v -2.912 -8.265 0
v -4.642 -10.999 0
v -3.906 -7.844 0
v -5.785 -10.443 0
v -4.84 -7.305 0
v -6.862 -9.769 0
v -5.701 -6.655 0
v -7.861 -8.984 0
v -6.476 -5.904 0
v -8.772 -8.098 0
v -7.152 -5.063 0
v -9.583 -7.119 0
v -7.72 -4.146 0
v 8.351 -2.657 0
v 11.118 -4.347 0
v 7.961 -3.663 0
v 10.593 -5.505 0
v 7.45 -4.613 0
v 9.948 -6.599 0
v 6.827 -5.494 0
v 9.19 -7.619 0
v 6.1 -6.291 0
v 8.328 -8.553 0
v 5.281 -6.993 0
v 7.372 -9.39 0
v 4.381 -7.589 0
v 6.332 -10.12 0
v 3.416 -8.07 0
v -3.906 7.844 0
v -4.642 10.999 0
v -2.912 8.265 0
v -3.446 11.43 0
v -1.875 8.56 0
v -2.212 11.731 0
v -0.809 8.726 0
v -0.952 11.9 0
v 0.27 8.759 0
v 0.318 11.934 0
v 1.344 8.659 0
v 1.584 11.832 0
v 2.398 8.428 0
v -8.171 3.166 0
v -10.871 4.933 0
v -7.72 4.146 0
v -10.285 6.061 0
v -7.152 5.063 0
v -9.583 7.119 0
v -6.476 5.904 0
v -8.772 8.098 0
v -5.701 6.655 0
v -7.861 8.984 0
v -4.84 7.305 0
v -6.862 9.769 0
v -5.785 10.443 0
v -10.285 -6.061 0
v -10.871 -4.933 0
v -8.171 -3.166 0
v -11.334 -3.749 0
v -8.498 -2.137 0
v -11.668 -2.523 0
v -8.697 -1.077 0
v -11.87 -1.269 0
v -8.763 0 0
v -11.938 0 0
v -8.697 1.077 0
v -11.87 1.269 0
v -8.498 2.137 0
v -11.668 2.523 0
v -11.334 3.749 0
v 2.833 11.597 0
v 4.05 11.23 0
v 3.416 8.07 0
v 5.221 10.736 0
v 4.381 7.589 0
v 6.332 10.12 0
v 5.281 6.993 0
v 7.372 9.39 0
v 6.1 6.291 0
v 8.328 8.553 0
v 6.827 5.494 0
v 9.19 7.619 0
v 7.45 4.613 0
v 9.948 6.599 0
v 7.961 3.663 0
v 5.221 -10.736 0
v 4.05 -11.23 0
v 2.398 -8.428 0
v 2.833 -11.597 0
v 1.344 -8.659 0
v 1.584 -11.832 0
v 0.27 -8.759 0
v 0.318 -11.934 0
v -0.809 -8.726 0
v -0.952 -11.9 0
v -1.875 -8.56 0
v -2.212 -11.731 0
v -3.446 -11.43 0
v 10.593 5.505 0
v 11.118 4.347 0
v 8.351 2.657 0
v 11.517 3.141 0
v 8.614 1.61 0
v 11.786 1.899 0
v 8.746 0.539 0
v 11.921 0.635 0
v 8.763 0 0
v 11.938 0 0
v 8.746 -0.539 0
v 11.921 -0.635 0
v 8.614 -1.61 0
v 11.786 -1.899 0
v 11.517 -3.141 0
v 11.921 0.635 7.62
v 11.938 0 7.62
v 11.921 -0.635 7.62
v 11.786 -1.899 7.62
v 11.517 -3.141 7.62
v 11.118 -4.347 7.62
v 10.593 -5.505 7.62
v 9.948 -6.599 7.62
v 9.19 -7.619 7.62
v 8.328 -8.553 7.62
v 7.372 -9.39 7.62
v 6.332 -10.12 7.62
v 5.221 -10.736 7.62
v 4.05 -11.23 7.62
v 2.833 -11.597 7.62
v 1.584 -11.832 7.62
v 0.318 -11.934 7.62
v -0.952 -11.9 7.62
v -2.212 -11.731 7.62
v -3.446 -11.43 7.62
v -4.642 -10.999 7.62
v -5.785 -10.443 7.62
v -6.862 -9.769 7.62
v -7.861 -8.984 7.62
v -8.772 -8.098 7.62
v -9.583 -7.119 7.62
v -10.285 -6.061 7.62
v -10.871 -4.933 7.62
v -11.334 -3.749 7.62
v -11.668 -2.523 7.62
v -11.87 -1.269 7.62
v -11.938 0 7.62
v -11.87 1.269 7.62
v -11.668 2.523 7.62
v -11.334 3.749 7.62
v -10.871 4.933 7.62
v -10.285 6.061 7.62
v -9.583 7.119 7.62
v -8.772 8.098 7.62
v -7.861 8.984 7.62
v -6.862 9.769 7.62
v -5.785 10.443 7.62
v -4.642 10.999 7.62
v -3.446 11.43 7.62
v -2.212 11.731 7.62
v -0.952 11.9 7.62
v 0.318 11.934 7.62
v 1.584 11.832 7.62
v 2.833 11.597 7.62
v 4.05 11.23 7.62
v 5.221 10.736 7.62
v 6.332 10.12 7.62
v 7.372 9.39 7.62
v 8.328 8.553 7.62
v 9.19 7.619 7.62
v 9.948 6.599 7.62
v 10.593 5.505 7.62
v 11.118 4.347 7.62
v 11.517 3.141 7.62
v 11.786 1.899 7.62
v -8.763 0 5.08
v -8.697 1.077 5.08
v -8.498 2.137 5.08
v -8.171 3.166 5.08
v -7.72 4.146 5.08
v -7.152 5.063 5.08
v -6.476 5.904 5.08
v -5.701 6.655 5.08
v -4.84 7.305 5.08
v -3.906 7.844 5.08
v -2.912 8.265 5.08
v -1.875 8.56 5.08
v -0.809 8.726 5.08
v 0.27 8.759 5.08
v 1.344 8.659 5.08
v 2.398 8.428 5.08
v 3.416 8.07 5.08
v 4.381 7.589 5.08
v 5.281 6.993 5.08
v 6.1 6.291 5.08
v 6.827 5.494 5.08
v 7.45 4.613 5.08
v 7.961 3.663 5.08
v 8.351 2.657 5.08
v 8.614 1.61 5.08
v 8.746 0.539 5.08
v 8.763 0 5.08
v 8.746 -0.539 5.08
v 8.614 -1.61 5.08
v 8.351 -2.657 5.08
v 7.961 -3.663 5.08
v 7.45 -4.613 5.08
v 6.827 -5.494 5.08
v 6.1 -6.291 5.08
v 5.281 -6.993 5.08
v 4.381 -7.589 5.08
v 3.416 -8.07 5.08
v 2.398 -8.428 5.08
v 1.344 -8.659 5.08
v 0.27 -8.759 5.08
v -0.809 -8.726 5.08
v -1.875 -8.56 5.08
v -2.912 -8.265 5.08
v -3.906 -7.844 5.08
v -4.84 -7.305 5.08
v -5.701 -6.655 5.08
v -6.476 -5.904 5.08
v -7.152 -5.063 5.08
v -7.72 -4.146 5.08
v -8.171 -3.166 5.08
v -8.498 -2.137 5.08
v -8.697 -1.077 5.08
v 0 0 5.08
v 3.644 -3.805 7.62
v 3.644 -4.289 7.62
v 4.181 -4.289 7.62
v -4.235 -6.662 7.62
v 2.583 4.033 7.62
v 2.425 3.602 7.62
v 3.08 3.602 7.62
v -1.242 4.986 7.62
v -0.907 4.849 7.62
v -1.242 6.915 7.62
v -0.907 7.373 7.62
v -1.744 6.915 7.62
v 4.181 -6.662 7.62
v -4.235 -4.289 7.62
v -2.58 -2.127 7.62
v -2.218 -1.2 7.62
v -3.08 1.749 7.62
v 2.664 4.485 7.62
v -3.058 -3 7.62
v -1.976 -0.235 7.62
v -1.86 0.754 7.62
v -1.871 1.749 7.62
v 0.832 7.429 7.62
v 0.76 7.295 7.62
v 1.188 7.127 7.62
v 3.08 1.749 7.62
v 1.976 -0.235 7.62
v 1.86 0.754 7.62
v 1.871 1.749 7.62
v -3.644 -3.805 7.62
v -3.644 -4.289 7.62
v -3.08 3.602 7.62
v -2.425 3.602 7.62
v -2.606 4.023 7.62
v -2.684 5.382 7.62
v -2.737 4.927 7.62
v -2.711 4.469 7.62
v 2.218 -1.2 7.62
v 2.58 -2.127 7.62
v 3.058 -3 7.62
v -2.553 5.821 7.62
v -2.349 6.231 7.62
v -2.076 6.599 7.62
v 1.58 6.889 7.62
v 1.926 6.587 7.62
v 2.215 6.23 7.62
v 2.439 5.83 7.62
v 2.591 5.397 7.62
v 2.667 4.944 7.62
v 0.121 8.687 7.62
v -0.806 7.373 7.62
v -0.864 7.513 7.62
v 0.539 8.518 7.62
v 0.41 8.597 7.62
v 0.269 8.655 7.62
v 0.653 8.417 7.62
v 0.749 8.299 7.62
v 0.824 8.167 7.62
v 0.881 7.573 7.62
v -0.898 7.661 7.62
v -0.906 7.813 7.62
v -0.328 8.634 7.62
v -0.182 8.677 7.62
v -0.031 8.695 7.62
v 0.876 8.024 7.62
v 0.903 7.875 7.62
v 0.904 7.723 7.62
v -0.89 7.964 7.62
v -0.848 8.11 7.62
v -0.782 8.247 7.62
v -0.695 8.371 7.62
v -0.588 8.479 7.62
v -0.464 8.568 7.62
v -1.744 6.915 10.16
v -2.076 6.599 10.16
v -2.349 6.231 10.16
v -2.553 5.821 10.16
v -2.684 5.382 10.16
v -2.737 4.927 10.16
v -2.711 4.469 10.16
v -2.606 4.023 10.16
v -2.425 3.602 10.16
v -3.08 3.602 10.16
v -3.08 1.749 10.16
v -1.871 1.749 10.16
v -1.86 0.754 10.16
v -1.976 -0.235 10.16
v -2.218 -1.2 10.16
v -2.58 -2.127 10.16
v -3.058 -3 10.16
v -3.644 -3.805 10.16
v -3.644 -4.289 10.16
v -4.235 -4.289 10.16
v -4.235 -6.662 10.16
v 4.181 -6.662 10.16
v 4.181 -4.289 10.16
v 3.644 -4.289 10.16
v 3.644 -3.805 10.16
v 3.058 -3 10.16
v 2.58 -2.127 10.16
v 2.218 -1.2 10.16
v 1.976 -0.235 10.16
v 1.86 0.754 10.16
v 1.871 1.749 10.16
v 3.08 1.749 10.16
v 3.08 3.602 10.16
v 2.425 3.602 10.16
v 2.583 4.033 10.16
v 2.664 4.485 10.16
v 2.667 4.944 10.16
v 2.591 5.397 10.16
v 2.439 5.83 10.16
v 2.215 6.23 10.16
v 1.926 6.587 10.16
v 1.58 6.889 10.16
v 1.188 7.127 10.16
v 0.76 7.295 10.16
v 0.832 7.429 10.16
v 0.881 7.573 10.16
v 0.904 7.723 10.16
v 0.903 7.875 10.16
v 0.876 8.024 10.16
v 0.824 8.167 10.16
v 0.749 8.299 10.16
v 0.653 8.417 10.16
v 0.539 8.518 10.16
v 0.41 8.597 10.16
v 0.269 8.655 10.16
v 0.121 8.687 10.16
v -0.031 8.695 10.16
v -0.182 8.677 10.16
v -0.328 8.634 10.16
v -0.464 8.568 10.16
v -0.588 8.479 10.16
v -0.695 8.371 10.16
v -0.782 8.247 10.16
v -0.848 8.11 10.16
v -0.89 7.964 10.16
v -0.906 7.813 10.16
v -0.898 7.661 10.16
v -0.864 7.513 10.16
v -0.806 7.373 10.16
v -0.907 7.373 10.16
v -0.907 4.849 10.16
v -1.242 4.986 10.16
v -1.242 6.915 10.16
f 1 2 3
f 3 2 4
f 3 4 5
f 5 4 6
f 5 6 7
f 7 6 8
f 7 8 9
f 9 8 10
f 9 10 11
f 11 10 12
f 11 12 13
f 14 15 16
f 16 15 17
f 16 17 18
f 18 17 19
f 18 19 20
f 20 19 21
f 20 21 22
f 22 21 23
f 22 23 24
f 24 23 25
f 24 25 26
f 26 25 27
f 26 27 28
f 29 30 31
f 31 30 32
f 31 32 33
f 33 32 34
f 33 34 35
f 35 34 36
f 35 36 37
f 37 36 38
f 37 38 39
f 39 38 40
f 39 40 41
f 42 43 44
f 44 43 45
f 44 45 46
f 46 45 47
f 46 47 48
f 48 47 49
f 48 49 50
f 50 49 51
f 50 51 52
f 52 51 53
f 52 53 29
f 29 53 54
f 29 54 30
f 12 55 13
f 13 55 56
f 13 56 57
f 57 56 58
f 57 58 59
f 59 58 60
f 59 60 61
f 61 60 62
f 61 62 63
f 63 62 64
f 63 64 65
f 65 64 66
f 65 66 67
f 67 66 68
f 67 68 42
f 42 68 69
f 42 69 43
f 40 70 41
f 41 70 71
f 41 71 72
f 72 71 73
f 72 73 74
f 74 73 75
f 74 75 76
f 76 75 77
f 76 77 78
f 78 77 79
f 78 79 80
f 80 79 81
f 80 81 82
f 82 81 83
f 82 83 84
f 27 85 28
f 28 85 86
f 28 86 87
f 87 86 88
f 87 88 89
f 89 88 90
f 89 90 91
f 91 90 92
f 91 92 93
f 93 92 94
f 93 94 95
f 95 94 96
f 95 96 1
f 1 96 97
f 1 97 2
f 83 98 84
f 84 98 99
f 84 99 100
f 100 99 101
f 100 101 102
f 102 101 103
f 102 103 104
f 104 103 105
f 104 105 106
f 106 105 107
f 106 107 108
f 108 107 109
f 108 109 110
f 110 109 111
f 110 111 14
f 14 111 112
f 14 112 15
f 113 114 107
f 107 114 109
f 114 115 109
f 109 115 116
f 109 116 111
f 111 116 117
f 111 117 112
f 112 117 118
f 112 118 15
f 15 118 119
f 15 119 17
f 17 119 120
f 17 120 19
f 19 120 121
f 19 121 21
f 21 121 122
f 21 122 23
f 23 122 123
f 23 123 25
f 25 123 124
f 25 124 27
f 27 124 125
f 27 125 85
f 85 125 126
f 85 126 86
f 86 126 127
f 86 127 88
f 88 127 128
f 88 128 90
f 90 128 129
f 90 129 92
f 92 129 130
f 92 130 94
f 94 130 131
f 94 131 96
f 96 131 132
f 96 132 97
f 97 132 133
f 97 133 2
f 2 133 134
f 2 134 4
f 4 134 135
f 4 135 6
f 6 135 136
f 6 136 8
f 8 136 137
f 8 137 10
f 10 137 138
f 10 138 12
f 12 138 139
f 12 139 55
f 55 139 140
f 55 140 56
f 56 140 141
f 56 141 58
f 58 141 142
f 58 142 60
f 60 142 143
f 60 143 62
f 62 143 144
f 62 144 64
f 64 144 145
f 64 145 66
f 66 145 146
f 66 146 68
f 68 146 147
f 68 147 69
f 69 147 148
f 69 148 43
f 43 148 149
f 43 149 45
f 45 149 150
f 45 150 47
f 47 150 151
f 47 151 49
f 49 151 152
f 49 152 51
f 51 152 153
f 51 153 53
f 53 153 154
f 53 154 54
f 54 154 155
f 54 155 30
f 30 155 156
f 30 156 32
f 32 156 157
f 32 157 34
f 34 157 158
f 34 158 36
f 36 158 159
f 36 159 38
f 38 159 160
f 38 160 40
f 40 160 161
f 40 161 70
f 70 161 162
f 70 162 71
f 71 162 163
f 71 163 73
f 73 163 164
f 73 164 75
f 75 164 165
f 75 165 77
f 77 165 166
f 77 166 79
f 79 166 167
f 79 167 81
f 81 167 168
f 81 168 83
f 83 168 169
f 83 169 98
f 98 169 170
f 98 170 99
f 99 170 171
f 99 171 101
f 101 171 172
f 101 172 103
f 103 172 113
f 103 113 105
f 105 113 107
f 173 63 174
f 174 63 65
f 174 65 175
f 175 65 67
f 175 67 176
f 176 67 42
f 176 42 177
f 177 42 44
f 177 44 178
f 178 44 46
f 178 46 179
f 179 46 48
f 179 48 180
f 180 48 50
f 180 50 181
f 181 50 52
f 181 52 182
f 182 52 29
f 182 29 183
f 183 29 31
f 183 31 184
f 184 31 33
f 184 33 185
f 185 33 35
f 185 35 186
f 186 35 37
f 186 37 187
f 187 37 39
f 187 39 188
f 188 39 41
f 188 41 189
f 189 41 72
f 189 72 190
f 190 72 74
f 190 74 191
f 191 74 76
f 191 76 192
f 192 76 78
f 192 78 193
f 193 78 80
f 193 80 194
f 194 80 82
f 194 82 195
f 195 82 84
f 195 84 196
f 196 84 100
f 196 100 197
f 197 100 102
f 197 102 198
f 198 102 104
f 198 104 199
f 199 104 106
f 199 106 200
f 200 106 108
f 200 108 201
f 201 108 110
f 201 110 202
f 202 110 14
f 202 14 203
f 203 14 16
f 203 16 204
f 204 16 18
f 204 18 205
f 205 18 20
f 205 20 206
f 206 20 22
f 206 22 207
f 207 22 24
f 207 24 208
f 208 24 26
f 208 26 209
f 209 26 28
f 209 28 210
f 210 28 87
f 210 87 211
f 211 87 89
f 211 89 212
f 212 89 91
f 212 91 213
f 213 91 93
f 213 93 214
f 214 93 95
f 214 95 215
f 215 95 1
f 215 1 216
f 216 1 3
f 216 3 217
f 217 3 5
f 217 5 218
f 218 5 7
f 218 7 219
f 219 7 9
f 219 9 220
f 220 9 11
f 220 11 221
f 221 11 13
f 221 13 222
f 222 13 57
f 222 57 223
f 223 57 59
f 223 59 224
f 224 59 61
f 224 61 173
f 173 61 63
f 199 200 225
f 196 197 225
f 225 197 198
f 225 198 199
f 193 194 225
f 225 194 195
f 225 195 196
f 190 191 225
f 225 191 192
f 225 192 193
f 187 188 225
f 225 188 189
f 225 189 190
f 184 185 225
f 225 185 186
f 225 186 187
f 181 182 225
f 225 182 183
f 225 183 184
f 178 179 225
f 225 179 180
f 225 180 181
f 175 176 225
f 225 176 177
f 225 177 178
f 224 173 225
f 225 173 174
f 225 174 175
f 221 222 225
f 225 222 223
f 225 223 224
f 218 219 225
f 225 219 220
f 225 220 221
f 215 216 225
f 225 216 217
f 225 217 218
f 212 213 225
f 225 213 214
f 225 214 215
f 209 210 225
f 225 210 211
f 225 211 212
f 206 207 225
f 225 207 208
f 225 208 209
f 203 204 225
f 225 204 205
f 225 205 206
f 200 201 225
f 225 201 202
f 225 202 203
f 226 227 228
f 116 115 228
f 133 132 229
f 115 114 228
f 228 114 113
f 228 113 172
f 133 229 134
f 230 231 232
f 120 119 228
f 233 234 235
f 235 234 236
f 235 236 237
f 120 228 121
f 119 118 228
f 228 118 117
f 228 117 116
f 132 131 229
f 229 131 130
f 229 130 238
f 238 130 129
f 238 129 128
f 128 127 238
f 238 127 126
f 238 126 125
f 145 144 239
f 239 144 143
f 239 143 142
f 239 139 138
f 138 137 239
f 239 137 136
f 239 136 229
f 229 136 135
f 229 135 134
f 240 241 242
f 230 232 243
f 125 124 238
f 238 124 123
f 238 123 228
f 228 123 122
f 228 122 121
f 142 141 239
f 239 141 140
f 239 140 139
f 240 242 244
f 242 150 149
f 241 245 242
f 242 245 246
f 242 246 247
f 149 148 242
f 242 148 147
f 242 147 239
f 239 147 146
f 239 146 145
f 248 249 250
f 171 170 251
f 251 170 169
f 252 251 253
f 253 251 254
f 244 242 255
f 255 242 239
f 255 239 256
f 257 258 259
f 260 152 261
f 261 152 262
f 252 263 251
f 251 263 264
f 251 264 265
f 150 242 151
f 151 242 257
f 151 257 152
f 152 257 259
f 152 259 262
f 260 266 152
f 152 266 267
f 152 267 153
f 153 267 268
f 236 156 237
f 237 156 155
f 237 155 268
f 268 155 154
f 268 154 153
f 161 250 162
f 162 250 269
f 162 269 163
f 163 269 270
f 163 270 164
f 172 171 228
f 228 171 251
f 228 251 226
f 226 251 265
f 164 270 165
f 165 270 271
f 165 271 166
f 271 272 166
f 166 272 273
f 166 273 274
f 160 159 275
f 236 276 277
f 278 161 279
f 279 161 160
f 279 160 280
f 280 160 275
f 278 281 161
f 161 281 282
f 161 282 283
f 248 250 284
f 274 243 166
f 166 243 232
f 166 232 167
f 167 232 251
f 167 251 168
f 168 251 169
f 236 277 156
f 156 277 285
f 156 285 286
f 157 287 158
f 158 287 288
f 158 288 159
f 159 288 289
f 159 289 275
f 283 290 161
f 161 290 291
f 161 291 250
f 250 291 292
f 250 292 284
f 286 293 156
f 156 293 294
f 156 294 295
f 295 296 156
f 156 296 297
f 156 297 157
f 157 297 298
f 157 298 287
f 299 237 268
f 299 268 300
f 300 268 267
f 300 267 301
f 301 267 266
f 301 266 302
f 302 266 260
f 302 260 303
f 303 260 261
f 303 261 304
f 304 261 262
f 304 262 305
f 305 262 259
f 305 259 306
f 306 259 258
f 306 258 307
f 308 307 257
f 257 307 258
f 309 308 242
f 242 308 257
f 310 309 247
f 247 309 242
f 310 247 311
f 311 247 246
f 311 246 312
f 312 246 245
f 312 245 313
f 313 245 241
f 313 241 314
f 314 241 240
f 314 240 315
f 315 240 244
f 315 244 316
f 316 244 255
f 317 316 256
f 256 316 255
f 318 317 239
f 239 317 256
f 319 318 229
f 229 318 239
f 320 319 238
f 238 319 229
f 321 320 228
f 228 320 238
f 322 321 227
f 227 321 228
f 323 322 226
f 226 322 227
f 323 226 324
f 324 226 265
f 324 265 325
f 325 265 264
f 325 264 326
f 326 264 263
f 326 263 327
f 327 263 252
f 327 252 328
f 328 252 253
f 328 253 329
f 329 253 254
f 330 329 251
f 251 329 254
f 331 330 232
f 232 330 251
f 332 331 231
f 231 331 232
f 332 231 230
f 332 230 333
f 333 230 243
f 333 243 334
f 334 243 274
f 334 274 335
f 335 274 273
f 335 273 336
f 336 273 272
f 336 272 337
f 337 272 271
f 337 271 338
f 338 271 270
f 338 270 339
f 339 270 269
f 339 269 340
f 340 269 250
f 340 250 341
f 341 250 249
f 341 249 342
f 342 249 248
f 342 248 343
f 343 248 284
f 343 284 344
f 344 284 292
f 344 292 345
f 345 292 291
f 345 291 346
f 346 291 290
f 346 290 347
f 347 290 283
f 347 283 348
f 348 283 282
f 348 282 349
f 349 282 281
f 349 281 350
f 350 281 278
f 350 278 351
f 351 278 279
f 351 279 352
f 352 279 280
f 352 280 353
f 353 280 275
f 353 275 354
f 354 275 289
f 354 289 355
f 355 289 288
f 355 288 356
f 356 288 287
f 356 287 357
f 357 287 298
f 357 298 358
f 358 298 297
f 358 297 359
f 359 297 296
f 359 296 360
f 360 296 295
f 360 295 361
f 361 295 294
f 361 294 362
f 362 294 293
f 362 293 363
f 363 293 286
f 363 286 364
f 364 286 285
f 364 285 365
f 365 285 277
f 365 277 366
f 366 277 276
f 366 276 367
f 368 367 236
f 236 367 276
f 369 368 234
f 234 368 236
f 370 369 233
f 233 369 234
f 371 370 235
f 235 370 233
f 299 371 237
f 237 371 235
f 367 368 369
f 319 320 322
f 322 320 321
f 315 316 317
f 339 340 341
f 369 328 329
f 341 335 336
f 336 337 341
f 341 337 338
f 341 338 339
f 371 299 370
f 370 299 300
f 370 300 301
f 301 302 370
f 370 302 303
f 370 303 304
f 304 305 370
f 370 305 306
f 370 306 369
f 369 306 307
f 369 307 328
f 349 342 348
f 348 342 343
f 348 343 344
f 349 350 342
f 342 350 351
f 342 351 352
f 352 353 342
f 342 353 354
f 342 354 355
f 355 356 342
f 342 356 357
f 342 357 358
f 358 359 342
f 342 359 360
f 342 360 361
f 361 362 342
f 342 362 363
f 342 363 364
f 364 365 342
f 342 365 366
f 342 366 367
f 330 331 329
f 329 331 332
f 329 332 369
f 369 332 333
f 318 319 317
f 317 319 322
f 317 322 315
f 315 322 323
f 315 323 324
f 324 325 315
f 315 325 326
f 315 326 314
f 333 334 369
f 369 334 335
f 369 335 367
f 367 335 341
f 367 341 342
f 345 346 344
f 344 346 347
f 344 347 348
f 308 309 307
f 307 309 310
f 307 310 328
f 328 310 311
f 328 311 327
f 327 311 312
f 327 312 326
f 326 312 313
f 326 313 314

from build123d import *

# Parameters (mm, degrees)
SKETCH1_R           = 11.938
SKETCH1_R_2         = 8.763
BOSS_EXTRUDE1_DEPTH = 5.08
SKETCH2_R           = 11.938
BOSS_EXTRUDE2_DEPTH = 2.54
BOSS_EXTRUDE4_DEPTH = 2.54


with BuildPart() as part:
    # Sketch1 → Boss-Extrude1 (new body)
    with BuildSketch(Plane.XY):
        Circle(SKETCH1_R)
        Circle(SKETCH1_R_2, mode=Mode.SUBTRACT)
    extrude(amount=BOSS_EXTRUDE1_DEPTH)

    # Sketch2 → Boss-Extrude2 (add)
    with BuildSketch(Plane.XY.offset(5.08)):
        Circle(SKETCH2_R)
    extrude(amount=BOSS_EXTRUDE2_DEPTH)

    # Sketch3 → Boss-Extrude4 (add)
    with BuildSketch(Plane.XY.offset(7.62)):
        with BuildLine():
            Line((-3.643894956, -4.288673329), (-3.643894956, -3.805293576))
            ThreePointArc((-3.643894956, -3.805293576), (-2.21771863, -1.200372389), (-1.871410538, 1.749146896))
            Line((-1.871410538, 1.749146896), (-3.079634877, 1.749146896))
            Line((-3.079634877, 1.749146896), (-3.079634877, 3.601746254))
            Line((-3.079634877, 3.601746254), (-2.425208939, 3.601746254))
            ThreePointArc((-2.425208939, 3.601746254), (-2.683961488, 5.381731454), (-1.744311698, 6.915471479))
            Line((-1.744311698, 6.915471479), (-1.242224022, 6.915471479))
            Line((-1.242224022, 6.915471479), (-1.242224022, 4.985805442))
            Line((-1.242224022, 4.985805442), (-0.906720977, 4.849479664))
            Line((-0.906720977, 4.849479664), (-0.906720977, 7.372630859))
            Line((-0.906720977, 7.372630859), (-0.805595188, 7.372630859))
            ThreePointArc((-0.805595188, 7.372630859), (0.04512934, 8.694352218), (0.760232512, 7.294599731))
            ThreePointArc((0.760232512, 7.294599731), (2.43882488, 5.829651294), (2.425208939, 3.601746254))
            Line((2.425208939, 3.601746254), (3.079634877, 3.601746254))
            Line((3.079634877, 3.601746254), (3.079634877, 1.749146896))
            Line((3.079634877, 1.749146896), (1.871410538, 1.749146896))
            ThreePointArc((1.871410538, 1.749146896), (2.21771863, -1.200372389), (3.643894956, -3.805293576))
            Line((3.643894956, -3.805293576), (3.643894956, -4.288673329))
            Line((3.643894956, -4.288673329), (4.180733459, -4.288673329))
            Line((4.180733459, -4.288673329), (4.180733459, -6.661736262))
            Line((4.180733459, -6.661736262), (-4.235077354, -6.661736262))
            Line((-4.235077354, -6.661736262), (-4.235077354, -4.288673329))
            Line((-4.235077354, -4.288673329), (-3.643894956, -4.288673329))
        make_face()
    extrude(amount=BOSS_EXTRUDE4_DEPTH)


solid = part.part
